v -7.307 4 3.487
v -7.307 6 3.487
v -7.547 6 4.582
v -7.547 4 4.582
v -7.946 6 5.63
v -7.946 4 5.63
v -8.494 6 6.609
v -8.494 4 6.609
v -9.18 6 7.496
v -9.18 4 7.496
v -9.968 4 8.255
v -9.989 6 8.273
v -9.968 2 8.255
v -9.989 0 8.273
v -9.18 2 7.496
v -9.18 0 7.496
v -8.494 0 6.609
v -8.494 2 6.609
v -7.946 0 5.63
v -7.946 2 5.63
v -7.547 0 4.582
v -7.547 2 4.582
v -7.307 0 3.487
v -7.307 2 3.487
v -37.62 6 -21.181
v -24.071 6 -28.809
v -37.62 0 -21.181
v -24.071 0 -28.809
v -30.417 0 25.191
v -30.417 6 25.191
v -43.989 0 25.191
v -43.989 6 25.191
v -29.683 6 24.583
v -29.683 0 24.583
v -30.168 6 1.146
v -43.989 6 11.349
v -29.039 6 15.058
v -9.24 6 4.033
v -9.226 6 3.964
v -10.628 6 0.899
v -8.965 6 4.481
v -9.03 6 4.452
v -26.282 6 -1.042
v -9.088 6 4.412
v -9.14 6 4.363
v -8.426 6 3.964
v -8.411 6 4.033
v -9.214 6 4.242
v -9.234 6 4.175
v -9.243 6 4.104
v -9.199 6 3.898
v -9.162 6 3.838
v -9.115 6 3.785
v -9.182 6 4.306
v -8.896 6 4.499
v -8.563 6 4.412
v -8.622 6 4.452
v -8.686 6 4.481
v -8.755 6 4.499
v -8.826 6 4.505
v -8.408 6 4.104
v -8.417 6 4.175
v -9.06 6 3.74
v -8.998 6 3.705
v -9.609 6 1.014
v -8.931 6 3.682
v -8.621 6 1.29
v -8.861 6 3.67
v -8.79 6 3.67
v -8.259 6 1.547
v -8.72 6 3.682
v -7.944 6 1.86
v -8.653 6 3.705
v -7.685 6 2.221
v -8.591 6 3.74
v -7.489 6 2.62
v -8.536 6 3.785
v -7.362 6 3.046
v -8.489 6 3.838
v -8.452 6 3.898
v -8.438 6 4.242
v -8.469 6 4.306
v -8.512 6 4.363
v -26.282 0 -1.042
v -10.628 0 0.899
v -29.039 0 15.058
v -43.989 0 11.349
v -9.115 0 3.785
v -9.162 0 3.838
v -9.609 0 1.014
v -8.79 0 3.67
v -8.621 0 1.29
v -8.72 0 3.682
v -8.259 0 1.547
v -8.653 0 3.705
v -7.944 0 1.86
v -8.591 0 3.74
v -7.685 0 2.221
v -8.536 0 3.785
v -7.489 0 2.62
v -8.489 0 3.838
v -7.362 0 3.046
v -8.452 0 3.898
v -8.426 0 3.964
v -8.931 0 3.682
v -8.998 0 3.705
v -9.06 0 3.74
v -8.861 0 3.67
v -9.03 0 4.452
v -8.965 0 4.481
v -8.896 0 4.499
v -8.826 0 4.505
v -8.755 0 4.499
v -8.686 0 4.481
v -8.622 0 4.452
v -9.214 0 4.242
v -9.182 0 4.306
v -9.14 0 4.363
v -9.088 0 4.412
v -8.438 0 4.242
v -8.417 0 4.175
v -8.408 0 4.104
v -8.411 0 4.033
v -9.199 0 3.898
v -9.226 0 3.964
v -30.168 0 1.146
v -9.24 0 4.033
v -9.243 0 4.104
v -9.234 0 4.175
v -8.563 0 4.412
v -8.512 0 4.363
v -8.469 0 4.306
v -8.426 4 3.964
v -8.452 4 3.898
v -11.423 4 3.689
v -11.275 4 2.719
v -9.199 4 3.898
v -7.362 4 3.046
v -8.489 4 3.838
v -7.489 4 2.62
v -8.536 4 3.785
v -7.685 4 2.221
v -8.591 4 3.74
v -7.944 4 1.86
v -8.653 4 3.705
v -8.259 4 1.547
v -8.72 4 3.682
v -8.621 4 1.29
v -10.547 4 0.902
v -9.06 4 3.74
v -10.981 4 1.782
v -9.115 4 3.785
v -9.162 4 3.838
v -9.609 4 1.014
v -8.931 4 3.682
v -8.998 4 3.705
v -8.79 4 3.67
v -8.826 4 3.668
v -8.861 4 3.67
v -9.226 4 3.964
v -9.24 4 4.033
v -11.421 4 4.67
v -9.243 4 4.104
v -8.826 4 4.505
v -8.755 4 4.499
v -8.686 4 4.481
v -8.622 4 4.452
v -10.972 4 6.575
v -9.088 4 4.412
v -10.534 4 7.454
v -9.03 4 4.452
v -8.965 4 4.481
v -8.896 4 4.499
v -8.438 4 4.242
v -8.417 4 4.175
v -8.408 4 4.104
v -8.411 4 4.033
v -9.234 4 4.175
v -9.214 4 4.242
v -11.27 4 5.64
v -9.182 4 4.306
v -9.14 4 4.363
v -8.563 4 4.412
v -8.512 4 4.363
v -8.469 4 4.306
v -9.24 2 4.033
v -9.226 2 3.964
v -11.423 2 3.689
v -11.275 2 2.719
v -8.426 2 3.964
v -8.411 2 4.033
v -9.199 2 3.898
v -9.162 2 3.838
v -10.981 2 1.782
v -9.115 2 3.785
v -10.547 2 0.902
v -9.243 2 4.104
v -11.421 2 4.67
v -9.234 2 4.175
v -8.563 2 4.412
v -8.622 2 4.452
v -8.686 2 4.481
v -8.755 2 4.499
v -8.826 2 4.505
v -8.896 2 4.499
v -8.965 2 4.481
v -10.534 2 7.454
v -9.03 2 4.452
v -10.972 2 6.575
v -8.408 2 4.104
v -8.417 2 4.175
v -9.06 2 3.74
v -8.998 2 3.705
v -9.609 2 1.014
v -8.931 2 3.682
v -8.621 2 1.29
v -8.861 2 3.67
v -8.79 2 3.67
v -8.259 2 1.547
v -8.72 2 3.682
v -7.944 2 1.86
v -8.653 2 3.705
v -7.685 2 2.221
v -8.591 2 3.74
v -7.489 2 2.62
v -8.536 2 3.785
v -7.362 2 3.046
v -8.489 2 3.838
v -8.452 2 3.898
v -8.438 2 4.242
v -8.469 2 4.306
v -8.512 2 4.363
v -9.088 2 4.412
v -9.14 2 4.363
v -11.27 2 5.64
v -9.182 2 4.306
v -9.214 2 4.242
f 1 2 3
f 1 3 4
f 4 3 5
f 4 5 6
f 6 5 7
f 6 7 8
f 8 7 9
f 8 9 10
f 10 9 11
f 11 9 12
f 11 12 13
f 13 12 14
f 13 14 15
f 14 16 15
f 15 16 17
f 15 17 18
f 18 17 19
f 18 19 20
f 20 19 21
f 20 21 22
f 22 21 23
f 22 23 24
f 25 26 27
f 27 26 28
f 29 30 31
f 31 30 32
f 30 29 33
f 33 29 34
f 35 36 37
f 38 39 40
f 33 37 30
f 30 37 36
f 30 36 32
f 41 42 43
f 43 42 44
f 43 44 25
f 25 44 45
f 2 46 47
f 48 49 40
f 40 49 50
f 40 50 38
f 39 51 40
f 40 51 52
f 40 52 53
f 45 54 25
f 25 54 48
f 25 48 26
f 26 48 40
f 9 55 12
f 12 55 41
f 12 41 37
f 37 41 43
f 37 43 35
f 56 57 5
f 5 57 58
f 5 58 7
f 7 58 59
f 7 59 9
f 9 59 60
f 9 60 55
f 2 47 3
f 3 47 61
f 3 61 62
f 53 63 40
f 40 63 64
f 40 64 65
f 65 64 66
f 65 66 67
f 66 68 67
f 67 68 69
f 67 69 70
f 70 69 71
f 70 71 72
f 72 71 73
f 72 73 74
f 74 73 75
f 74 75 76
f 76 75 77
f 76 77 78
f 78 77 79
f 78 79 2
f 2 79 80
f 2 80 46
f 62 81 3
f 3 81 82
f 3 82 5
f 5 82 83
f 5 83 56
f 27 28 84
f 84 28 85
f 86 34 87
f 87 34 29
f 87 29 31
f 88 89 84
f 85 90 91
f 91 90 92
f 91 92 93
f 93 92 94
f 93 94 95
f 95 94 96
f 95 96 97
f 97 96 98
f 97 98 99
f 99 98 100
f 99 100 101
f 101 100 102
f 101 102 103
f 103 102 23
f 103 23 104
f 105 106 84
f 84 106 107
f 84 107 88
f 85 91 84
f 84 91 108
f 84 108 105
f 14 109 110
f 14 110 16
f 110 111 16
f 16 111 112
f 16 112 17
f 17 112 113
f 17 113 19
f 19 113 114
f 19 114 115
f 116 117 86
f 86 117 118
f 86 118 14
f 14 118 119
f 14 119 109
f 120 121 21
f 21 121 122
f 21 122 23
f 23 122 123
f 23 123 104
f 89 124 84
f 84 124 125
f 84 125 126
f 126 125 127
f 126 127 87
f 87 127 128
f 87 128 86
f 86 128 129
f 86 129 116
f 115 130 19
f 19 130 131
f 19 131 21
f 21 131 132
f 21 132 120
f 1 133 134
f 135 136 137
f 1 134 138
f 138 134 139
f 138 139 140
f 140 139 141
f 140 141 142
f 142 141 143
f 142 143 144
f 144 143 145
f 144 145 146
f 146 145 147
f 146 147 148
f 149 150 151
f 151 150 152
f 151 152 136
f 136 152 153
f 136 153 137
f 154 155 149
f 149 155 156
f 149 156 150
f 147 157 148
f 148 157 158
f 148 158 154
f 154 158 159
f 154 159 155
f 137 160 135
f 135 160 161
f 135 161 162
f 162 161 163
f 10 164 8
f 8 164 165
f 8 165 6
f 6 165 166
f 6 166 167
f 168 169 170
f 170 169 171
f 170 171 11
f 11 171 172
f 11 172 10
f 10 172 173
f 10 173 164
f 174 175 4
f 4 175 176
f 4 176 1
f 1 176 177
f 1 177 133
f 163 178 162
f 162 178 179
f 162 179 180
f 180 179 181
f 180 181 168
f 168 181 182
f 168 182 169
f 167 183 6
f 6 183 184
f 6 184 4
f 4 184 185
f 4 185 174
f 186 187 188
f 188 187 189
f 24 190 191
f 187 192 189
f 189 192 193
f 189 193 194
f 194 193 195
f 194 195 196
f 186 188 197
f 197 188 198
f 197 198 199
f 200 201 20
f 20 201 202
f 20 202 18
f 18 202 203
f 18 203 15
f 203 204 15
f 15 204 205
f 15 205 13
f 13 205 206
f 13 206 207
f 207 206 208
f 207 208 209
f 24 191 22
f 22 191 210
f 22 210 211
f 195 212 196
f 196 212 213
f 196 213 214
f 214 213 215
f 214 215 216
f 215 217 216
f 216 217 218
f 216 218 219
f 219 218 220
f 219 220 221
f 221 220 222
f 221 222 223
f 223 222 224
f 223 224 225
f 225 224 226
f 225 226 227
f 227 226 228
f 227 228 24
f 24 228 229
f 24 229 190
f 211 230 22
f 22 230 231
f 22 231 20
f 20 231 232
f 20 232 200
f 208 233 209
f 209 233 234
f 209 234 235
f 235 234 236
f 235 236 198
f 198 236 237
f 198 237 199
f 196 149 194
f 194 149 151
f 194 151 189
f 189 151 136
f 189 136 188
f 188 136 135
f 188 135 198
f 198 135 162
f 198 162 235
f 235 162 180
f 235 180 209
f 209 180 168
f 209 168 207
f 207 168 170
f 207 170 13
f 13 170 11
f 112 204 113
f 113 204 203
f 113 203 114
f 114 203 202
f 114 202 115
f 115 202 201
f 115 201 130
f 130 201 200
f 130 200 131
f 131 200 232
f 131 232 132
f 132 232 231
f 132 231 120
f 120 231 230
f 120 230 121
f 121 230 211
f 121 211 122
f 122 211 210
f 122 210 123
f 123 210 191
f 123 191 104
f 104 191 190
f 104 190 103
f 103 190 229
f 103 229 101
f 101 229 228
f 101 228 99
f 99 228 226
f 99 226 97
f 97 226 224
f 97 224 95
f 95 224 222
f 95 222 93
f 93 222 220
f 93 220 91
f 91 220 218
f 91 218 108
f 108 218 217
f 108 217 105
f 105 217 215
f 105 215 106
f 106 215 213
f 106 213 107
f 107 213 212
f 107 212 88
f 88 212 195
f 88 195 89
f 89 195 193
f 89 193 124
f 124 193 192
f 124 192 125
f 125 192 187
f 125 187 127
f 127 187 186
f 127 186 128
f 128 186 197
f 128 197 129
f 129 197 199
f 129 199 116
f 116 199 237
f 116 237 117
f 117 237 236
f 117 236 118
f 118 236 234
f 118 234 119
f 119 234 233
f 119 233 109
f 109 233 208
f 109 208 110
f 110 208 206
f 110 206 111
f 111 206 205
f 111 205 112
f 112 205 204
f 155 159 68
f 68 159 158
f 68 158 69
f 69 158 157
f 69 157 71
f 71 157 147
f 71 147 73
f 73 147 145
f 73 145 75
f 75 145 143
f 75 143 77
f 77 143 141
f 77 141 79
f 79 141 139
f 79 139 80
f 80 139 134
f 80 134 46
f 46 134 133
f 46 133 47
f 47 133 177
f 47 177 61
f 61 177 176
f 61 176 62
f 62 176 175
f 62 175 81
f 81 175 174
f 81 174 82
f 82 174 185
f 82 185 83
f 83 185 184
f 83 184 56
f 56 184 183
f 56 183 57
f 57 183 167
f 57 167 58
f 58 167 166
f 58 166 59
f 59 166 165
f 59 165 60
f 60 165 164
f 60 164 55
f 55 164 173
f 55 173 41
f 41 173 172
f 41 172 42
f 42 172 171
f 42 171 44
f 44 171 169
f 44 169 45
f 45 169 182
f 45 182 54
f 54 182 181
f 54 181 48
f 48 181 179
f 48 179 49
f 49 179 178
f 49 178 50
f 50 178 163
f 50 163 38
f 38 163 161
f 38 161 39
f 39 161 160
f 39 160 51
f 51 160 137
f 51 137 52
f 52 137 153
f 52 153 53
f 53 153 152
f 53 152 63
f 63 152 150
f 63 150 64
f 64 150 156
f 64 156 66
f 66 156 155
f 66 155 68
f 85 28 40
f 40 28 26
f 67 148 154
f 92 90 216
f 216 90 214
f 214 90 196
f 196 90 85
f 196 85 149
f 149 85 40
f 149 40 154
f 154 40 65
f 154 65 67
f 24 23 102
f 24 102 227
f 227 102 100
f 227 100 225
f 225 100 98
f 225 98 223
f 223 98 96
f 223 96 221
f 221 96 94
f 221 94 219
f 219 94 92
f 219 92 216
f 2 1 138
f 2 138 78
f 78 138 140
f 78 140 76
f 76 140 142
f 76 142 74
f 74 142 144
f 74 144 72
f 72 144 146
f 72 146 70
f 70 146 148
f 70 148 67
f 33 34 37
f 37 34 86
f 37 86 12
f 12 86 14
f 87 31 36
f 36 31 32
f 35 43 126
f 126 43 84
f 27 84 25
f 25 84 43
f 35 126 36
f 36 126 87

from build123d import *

# Parameters (mm, degrees)
BOSS_EXTRUDE1_DEPTH = 6
SKETCH3_W           = 6.408683363
SKETCH3_H           = 2
SKETCH4_R           = 0.418238454
CUT_EXTRUDE1_DEPTH  = 68.577687393
CUT_EXTRUDE2_DEPTH  = 7.07563293
CUT_EXTRUDE3_DEPTH  = 7.07563293
CUT_EXTRUDE4_DEPTH  = 8.636
SKETCH9_W           = 16.845523319
SKETCH9_H           = 13.536518873
CUT_EXTRUDE5_DEPTH  = 8.636
BOSS_EXTRUDE2_DEPTH = 6
CUT_EXTRUDE6_DEPTH  = 21.59
CUT_EXTRUDE7_DEPTH  = 20.574


with BuildPart() as part:
    # Sketch1 → Boss-Extrude1 (new body)
    with BuildSketch(Plane(origin=(0, 0, 0), x_dir=(1, 0, 0), z_dir=(0, 1, 0))):
        with BuildLine():
            Line((-30.417100683, -25.191255191), (-60.834201366, -25.191255191))
            Line((-60.834201366, -25.191255191), (-60.834201366, -11.654736318))
            Line((-60.834201366, -11.654736318), (-42.452724359, -11.654736318))
            Line((-42.452724359, -11.654736318), (-55.326541771, 11.21298086))
            Line((-55.326541771, 11.21298086), (-24.071247352, 28.808744809))
            Line((-24.071247352, 28.808744809), (-8.250197814, 1.40588318))
            ThreePointArc((-8.250197814, 1.40588318), (-7.349372036, -3.751451104), (-9.988929311, -8.27276965))
            Line((-9.988929311, -8.27276965), (-30.417100683, -25.191255191))
        make_face()
    extrude(amount=BOSS_EXTRUDE1_DEPTH)

    # Sketch3 → Cut-Revolve1 (revolve, cut)
    with BuildSketch(Plane(origin=(0, 0, 0), x_dir=(0.7701644134023178, 0, -0.6378454172671179), z_dir=(0.6378454172671179, 0, 0.7701644134023178))):
        with Locations((-9.738380512, 3)):
            Rectangle(SKETCH3_W, SKETCH3_H)
    revolve(axis=Axis((-5.032284182, 4, 4.167706724), (0, -1, 0)), mode=Mode.SUBTRACT)

    # Sketch4 → Cut-Extrude1 (cut, through all)
    with BuildSketch(Plane(origin=(0, 6, 0), x_dir=(1, 0, 0), z_dir=(0, 1, 0))):
        with Locations(Location((-8.825601509, -4.086499086, 0), (0, 0, 270))):
            Circle(SKETCH4_R)
    extrude(amount=-CUT_EXTRUDE1_DEPTH, mode=Mode.SUBTRACT)

    # Sketch5 → Cut-Extrude2 (cut)
    with BuildSketch(Plane.XZ):
        with BuildLine():
            Line((-24.071247352, -28.808744809), (-10.627789176, 0.89898626))
            ThreePointArc((-10.627789176, 0.89898626), (-8.855926732, 1.209162301), (-7.240059857, 1.999529264))
            ThreePointArc((-7.240059857, 1.999529264), (-7.543928563, 0.237141569), (-8.250197814, -1.40588318))
            Line((-8.250197814, -1.40588318), (-24.071247352, -28.808744809))
        make_face()
    extrude(amount=-CUT_EXTRUDE2_DEPTH, mode=Mode.SUBTRACT)

    # Sketch6 → Cut-Extrude3 (cut)
    with BuildSketch(Plane(origin=(0, 0, 0), x_dir=(-1, 0, 0), z_dir=(0, -1, 0))):
        with BuildLine():
            Line((8.621369431, -1.290415749), (6.275781013, -0.723765639))
            Line((6.275781013, -0.723765639), (7.306606233, -3.4867058))
            ThreePointArc((7.306606233, -3.4867058), (7.684746322, -2.221398672), (8.621369431, -1.290415749))
        make_face()
    extrude(amount=-CUT_EXTRUDE3_DEPTH, mode=Mode.SUBTRACT)

    # Sketch7 → Cut-Extrude4 (cut)
    with BuildSketch(Plane(origin=(0, 6, 0), x_dir=(1, 0, 0), z_dir=(0, 1, 0))):
        Polygon((-9.988929311, -8.27276965), (-29.038929311, -15.05806632), (-29.682744971, -24.58306632), align=None)
    extrude(amount=-CUT_EXTRUDE4_DEPTH, mode=Mode.SUBTRACT)

    # Sketch9 → Cut-Extrude5 (cut)
    with BuildSketch(Plane(origin=(0, 6, 0), x_dir=(1, 0, 0), z_dir=(0, 1, 0))):
        with Locations((-52.411439707, -18.422995755)):
            Rectangle(SKETCH9_W, SKETCH9_H)
    extrude(amount=-CUT_EXTRUDE5_DEPTH, mode=Mode.SUBTRACT)

    # Sketch10 → Boss-Extrude2 (add)
    with BuildSketch(Plane.XZ):
        Polygon((-43.988678047, 11.654736318), (-43.988678047, 8.926427114), (-42.452724359, 11.654736318), align=None)
    extrude(amount=-BOSS_EXTRUDE2_DEPTH)

    # Sketch11 → Cut-Extrude6 (cut)
    with BuildSketch(Plane.XZ):
        Polygon((-55.326541771, -11.21298086), (-43.988678047, 8.926427114), (-26.281813284, -1.041990026), (-37.619677009, -21.181398001), align=None)
    extrude(amount=-CUT_EXTRUDE6_DEPTH, mode=Mode.SUBTRACT)

    # Sketch12 → Cut-Extrude7 (cut)
    with BuildSketch(Plane(origin=(0, 6, 0), x_dir=(1, 0, 0), z_dir=(0, 1, 0))):
        Polygon((-43.988678047, -11.348752844), (-30.168184759, -1.145916898), (-43.988678047, -8.926427114), align=None)
    extrude(amount=-CUT_EXTRUDE7_DEPTH, mode=Mode.SUBTRACT)


solid = part.part
